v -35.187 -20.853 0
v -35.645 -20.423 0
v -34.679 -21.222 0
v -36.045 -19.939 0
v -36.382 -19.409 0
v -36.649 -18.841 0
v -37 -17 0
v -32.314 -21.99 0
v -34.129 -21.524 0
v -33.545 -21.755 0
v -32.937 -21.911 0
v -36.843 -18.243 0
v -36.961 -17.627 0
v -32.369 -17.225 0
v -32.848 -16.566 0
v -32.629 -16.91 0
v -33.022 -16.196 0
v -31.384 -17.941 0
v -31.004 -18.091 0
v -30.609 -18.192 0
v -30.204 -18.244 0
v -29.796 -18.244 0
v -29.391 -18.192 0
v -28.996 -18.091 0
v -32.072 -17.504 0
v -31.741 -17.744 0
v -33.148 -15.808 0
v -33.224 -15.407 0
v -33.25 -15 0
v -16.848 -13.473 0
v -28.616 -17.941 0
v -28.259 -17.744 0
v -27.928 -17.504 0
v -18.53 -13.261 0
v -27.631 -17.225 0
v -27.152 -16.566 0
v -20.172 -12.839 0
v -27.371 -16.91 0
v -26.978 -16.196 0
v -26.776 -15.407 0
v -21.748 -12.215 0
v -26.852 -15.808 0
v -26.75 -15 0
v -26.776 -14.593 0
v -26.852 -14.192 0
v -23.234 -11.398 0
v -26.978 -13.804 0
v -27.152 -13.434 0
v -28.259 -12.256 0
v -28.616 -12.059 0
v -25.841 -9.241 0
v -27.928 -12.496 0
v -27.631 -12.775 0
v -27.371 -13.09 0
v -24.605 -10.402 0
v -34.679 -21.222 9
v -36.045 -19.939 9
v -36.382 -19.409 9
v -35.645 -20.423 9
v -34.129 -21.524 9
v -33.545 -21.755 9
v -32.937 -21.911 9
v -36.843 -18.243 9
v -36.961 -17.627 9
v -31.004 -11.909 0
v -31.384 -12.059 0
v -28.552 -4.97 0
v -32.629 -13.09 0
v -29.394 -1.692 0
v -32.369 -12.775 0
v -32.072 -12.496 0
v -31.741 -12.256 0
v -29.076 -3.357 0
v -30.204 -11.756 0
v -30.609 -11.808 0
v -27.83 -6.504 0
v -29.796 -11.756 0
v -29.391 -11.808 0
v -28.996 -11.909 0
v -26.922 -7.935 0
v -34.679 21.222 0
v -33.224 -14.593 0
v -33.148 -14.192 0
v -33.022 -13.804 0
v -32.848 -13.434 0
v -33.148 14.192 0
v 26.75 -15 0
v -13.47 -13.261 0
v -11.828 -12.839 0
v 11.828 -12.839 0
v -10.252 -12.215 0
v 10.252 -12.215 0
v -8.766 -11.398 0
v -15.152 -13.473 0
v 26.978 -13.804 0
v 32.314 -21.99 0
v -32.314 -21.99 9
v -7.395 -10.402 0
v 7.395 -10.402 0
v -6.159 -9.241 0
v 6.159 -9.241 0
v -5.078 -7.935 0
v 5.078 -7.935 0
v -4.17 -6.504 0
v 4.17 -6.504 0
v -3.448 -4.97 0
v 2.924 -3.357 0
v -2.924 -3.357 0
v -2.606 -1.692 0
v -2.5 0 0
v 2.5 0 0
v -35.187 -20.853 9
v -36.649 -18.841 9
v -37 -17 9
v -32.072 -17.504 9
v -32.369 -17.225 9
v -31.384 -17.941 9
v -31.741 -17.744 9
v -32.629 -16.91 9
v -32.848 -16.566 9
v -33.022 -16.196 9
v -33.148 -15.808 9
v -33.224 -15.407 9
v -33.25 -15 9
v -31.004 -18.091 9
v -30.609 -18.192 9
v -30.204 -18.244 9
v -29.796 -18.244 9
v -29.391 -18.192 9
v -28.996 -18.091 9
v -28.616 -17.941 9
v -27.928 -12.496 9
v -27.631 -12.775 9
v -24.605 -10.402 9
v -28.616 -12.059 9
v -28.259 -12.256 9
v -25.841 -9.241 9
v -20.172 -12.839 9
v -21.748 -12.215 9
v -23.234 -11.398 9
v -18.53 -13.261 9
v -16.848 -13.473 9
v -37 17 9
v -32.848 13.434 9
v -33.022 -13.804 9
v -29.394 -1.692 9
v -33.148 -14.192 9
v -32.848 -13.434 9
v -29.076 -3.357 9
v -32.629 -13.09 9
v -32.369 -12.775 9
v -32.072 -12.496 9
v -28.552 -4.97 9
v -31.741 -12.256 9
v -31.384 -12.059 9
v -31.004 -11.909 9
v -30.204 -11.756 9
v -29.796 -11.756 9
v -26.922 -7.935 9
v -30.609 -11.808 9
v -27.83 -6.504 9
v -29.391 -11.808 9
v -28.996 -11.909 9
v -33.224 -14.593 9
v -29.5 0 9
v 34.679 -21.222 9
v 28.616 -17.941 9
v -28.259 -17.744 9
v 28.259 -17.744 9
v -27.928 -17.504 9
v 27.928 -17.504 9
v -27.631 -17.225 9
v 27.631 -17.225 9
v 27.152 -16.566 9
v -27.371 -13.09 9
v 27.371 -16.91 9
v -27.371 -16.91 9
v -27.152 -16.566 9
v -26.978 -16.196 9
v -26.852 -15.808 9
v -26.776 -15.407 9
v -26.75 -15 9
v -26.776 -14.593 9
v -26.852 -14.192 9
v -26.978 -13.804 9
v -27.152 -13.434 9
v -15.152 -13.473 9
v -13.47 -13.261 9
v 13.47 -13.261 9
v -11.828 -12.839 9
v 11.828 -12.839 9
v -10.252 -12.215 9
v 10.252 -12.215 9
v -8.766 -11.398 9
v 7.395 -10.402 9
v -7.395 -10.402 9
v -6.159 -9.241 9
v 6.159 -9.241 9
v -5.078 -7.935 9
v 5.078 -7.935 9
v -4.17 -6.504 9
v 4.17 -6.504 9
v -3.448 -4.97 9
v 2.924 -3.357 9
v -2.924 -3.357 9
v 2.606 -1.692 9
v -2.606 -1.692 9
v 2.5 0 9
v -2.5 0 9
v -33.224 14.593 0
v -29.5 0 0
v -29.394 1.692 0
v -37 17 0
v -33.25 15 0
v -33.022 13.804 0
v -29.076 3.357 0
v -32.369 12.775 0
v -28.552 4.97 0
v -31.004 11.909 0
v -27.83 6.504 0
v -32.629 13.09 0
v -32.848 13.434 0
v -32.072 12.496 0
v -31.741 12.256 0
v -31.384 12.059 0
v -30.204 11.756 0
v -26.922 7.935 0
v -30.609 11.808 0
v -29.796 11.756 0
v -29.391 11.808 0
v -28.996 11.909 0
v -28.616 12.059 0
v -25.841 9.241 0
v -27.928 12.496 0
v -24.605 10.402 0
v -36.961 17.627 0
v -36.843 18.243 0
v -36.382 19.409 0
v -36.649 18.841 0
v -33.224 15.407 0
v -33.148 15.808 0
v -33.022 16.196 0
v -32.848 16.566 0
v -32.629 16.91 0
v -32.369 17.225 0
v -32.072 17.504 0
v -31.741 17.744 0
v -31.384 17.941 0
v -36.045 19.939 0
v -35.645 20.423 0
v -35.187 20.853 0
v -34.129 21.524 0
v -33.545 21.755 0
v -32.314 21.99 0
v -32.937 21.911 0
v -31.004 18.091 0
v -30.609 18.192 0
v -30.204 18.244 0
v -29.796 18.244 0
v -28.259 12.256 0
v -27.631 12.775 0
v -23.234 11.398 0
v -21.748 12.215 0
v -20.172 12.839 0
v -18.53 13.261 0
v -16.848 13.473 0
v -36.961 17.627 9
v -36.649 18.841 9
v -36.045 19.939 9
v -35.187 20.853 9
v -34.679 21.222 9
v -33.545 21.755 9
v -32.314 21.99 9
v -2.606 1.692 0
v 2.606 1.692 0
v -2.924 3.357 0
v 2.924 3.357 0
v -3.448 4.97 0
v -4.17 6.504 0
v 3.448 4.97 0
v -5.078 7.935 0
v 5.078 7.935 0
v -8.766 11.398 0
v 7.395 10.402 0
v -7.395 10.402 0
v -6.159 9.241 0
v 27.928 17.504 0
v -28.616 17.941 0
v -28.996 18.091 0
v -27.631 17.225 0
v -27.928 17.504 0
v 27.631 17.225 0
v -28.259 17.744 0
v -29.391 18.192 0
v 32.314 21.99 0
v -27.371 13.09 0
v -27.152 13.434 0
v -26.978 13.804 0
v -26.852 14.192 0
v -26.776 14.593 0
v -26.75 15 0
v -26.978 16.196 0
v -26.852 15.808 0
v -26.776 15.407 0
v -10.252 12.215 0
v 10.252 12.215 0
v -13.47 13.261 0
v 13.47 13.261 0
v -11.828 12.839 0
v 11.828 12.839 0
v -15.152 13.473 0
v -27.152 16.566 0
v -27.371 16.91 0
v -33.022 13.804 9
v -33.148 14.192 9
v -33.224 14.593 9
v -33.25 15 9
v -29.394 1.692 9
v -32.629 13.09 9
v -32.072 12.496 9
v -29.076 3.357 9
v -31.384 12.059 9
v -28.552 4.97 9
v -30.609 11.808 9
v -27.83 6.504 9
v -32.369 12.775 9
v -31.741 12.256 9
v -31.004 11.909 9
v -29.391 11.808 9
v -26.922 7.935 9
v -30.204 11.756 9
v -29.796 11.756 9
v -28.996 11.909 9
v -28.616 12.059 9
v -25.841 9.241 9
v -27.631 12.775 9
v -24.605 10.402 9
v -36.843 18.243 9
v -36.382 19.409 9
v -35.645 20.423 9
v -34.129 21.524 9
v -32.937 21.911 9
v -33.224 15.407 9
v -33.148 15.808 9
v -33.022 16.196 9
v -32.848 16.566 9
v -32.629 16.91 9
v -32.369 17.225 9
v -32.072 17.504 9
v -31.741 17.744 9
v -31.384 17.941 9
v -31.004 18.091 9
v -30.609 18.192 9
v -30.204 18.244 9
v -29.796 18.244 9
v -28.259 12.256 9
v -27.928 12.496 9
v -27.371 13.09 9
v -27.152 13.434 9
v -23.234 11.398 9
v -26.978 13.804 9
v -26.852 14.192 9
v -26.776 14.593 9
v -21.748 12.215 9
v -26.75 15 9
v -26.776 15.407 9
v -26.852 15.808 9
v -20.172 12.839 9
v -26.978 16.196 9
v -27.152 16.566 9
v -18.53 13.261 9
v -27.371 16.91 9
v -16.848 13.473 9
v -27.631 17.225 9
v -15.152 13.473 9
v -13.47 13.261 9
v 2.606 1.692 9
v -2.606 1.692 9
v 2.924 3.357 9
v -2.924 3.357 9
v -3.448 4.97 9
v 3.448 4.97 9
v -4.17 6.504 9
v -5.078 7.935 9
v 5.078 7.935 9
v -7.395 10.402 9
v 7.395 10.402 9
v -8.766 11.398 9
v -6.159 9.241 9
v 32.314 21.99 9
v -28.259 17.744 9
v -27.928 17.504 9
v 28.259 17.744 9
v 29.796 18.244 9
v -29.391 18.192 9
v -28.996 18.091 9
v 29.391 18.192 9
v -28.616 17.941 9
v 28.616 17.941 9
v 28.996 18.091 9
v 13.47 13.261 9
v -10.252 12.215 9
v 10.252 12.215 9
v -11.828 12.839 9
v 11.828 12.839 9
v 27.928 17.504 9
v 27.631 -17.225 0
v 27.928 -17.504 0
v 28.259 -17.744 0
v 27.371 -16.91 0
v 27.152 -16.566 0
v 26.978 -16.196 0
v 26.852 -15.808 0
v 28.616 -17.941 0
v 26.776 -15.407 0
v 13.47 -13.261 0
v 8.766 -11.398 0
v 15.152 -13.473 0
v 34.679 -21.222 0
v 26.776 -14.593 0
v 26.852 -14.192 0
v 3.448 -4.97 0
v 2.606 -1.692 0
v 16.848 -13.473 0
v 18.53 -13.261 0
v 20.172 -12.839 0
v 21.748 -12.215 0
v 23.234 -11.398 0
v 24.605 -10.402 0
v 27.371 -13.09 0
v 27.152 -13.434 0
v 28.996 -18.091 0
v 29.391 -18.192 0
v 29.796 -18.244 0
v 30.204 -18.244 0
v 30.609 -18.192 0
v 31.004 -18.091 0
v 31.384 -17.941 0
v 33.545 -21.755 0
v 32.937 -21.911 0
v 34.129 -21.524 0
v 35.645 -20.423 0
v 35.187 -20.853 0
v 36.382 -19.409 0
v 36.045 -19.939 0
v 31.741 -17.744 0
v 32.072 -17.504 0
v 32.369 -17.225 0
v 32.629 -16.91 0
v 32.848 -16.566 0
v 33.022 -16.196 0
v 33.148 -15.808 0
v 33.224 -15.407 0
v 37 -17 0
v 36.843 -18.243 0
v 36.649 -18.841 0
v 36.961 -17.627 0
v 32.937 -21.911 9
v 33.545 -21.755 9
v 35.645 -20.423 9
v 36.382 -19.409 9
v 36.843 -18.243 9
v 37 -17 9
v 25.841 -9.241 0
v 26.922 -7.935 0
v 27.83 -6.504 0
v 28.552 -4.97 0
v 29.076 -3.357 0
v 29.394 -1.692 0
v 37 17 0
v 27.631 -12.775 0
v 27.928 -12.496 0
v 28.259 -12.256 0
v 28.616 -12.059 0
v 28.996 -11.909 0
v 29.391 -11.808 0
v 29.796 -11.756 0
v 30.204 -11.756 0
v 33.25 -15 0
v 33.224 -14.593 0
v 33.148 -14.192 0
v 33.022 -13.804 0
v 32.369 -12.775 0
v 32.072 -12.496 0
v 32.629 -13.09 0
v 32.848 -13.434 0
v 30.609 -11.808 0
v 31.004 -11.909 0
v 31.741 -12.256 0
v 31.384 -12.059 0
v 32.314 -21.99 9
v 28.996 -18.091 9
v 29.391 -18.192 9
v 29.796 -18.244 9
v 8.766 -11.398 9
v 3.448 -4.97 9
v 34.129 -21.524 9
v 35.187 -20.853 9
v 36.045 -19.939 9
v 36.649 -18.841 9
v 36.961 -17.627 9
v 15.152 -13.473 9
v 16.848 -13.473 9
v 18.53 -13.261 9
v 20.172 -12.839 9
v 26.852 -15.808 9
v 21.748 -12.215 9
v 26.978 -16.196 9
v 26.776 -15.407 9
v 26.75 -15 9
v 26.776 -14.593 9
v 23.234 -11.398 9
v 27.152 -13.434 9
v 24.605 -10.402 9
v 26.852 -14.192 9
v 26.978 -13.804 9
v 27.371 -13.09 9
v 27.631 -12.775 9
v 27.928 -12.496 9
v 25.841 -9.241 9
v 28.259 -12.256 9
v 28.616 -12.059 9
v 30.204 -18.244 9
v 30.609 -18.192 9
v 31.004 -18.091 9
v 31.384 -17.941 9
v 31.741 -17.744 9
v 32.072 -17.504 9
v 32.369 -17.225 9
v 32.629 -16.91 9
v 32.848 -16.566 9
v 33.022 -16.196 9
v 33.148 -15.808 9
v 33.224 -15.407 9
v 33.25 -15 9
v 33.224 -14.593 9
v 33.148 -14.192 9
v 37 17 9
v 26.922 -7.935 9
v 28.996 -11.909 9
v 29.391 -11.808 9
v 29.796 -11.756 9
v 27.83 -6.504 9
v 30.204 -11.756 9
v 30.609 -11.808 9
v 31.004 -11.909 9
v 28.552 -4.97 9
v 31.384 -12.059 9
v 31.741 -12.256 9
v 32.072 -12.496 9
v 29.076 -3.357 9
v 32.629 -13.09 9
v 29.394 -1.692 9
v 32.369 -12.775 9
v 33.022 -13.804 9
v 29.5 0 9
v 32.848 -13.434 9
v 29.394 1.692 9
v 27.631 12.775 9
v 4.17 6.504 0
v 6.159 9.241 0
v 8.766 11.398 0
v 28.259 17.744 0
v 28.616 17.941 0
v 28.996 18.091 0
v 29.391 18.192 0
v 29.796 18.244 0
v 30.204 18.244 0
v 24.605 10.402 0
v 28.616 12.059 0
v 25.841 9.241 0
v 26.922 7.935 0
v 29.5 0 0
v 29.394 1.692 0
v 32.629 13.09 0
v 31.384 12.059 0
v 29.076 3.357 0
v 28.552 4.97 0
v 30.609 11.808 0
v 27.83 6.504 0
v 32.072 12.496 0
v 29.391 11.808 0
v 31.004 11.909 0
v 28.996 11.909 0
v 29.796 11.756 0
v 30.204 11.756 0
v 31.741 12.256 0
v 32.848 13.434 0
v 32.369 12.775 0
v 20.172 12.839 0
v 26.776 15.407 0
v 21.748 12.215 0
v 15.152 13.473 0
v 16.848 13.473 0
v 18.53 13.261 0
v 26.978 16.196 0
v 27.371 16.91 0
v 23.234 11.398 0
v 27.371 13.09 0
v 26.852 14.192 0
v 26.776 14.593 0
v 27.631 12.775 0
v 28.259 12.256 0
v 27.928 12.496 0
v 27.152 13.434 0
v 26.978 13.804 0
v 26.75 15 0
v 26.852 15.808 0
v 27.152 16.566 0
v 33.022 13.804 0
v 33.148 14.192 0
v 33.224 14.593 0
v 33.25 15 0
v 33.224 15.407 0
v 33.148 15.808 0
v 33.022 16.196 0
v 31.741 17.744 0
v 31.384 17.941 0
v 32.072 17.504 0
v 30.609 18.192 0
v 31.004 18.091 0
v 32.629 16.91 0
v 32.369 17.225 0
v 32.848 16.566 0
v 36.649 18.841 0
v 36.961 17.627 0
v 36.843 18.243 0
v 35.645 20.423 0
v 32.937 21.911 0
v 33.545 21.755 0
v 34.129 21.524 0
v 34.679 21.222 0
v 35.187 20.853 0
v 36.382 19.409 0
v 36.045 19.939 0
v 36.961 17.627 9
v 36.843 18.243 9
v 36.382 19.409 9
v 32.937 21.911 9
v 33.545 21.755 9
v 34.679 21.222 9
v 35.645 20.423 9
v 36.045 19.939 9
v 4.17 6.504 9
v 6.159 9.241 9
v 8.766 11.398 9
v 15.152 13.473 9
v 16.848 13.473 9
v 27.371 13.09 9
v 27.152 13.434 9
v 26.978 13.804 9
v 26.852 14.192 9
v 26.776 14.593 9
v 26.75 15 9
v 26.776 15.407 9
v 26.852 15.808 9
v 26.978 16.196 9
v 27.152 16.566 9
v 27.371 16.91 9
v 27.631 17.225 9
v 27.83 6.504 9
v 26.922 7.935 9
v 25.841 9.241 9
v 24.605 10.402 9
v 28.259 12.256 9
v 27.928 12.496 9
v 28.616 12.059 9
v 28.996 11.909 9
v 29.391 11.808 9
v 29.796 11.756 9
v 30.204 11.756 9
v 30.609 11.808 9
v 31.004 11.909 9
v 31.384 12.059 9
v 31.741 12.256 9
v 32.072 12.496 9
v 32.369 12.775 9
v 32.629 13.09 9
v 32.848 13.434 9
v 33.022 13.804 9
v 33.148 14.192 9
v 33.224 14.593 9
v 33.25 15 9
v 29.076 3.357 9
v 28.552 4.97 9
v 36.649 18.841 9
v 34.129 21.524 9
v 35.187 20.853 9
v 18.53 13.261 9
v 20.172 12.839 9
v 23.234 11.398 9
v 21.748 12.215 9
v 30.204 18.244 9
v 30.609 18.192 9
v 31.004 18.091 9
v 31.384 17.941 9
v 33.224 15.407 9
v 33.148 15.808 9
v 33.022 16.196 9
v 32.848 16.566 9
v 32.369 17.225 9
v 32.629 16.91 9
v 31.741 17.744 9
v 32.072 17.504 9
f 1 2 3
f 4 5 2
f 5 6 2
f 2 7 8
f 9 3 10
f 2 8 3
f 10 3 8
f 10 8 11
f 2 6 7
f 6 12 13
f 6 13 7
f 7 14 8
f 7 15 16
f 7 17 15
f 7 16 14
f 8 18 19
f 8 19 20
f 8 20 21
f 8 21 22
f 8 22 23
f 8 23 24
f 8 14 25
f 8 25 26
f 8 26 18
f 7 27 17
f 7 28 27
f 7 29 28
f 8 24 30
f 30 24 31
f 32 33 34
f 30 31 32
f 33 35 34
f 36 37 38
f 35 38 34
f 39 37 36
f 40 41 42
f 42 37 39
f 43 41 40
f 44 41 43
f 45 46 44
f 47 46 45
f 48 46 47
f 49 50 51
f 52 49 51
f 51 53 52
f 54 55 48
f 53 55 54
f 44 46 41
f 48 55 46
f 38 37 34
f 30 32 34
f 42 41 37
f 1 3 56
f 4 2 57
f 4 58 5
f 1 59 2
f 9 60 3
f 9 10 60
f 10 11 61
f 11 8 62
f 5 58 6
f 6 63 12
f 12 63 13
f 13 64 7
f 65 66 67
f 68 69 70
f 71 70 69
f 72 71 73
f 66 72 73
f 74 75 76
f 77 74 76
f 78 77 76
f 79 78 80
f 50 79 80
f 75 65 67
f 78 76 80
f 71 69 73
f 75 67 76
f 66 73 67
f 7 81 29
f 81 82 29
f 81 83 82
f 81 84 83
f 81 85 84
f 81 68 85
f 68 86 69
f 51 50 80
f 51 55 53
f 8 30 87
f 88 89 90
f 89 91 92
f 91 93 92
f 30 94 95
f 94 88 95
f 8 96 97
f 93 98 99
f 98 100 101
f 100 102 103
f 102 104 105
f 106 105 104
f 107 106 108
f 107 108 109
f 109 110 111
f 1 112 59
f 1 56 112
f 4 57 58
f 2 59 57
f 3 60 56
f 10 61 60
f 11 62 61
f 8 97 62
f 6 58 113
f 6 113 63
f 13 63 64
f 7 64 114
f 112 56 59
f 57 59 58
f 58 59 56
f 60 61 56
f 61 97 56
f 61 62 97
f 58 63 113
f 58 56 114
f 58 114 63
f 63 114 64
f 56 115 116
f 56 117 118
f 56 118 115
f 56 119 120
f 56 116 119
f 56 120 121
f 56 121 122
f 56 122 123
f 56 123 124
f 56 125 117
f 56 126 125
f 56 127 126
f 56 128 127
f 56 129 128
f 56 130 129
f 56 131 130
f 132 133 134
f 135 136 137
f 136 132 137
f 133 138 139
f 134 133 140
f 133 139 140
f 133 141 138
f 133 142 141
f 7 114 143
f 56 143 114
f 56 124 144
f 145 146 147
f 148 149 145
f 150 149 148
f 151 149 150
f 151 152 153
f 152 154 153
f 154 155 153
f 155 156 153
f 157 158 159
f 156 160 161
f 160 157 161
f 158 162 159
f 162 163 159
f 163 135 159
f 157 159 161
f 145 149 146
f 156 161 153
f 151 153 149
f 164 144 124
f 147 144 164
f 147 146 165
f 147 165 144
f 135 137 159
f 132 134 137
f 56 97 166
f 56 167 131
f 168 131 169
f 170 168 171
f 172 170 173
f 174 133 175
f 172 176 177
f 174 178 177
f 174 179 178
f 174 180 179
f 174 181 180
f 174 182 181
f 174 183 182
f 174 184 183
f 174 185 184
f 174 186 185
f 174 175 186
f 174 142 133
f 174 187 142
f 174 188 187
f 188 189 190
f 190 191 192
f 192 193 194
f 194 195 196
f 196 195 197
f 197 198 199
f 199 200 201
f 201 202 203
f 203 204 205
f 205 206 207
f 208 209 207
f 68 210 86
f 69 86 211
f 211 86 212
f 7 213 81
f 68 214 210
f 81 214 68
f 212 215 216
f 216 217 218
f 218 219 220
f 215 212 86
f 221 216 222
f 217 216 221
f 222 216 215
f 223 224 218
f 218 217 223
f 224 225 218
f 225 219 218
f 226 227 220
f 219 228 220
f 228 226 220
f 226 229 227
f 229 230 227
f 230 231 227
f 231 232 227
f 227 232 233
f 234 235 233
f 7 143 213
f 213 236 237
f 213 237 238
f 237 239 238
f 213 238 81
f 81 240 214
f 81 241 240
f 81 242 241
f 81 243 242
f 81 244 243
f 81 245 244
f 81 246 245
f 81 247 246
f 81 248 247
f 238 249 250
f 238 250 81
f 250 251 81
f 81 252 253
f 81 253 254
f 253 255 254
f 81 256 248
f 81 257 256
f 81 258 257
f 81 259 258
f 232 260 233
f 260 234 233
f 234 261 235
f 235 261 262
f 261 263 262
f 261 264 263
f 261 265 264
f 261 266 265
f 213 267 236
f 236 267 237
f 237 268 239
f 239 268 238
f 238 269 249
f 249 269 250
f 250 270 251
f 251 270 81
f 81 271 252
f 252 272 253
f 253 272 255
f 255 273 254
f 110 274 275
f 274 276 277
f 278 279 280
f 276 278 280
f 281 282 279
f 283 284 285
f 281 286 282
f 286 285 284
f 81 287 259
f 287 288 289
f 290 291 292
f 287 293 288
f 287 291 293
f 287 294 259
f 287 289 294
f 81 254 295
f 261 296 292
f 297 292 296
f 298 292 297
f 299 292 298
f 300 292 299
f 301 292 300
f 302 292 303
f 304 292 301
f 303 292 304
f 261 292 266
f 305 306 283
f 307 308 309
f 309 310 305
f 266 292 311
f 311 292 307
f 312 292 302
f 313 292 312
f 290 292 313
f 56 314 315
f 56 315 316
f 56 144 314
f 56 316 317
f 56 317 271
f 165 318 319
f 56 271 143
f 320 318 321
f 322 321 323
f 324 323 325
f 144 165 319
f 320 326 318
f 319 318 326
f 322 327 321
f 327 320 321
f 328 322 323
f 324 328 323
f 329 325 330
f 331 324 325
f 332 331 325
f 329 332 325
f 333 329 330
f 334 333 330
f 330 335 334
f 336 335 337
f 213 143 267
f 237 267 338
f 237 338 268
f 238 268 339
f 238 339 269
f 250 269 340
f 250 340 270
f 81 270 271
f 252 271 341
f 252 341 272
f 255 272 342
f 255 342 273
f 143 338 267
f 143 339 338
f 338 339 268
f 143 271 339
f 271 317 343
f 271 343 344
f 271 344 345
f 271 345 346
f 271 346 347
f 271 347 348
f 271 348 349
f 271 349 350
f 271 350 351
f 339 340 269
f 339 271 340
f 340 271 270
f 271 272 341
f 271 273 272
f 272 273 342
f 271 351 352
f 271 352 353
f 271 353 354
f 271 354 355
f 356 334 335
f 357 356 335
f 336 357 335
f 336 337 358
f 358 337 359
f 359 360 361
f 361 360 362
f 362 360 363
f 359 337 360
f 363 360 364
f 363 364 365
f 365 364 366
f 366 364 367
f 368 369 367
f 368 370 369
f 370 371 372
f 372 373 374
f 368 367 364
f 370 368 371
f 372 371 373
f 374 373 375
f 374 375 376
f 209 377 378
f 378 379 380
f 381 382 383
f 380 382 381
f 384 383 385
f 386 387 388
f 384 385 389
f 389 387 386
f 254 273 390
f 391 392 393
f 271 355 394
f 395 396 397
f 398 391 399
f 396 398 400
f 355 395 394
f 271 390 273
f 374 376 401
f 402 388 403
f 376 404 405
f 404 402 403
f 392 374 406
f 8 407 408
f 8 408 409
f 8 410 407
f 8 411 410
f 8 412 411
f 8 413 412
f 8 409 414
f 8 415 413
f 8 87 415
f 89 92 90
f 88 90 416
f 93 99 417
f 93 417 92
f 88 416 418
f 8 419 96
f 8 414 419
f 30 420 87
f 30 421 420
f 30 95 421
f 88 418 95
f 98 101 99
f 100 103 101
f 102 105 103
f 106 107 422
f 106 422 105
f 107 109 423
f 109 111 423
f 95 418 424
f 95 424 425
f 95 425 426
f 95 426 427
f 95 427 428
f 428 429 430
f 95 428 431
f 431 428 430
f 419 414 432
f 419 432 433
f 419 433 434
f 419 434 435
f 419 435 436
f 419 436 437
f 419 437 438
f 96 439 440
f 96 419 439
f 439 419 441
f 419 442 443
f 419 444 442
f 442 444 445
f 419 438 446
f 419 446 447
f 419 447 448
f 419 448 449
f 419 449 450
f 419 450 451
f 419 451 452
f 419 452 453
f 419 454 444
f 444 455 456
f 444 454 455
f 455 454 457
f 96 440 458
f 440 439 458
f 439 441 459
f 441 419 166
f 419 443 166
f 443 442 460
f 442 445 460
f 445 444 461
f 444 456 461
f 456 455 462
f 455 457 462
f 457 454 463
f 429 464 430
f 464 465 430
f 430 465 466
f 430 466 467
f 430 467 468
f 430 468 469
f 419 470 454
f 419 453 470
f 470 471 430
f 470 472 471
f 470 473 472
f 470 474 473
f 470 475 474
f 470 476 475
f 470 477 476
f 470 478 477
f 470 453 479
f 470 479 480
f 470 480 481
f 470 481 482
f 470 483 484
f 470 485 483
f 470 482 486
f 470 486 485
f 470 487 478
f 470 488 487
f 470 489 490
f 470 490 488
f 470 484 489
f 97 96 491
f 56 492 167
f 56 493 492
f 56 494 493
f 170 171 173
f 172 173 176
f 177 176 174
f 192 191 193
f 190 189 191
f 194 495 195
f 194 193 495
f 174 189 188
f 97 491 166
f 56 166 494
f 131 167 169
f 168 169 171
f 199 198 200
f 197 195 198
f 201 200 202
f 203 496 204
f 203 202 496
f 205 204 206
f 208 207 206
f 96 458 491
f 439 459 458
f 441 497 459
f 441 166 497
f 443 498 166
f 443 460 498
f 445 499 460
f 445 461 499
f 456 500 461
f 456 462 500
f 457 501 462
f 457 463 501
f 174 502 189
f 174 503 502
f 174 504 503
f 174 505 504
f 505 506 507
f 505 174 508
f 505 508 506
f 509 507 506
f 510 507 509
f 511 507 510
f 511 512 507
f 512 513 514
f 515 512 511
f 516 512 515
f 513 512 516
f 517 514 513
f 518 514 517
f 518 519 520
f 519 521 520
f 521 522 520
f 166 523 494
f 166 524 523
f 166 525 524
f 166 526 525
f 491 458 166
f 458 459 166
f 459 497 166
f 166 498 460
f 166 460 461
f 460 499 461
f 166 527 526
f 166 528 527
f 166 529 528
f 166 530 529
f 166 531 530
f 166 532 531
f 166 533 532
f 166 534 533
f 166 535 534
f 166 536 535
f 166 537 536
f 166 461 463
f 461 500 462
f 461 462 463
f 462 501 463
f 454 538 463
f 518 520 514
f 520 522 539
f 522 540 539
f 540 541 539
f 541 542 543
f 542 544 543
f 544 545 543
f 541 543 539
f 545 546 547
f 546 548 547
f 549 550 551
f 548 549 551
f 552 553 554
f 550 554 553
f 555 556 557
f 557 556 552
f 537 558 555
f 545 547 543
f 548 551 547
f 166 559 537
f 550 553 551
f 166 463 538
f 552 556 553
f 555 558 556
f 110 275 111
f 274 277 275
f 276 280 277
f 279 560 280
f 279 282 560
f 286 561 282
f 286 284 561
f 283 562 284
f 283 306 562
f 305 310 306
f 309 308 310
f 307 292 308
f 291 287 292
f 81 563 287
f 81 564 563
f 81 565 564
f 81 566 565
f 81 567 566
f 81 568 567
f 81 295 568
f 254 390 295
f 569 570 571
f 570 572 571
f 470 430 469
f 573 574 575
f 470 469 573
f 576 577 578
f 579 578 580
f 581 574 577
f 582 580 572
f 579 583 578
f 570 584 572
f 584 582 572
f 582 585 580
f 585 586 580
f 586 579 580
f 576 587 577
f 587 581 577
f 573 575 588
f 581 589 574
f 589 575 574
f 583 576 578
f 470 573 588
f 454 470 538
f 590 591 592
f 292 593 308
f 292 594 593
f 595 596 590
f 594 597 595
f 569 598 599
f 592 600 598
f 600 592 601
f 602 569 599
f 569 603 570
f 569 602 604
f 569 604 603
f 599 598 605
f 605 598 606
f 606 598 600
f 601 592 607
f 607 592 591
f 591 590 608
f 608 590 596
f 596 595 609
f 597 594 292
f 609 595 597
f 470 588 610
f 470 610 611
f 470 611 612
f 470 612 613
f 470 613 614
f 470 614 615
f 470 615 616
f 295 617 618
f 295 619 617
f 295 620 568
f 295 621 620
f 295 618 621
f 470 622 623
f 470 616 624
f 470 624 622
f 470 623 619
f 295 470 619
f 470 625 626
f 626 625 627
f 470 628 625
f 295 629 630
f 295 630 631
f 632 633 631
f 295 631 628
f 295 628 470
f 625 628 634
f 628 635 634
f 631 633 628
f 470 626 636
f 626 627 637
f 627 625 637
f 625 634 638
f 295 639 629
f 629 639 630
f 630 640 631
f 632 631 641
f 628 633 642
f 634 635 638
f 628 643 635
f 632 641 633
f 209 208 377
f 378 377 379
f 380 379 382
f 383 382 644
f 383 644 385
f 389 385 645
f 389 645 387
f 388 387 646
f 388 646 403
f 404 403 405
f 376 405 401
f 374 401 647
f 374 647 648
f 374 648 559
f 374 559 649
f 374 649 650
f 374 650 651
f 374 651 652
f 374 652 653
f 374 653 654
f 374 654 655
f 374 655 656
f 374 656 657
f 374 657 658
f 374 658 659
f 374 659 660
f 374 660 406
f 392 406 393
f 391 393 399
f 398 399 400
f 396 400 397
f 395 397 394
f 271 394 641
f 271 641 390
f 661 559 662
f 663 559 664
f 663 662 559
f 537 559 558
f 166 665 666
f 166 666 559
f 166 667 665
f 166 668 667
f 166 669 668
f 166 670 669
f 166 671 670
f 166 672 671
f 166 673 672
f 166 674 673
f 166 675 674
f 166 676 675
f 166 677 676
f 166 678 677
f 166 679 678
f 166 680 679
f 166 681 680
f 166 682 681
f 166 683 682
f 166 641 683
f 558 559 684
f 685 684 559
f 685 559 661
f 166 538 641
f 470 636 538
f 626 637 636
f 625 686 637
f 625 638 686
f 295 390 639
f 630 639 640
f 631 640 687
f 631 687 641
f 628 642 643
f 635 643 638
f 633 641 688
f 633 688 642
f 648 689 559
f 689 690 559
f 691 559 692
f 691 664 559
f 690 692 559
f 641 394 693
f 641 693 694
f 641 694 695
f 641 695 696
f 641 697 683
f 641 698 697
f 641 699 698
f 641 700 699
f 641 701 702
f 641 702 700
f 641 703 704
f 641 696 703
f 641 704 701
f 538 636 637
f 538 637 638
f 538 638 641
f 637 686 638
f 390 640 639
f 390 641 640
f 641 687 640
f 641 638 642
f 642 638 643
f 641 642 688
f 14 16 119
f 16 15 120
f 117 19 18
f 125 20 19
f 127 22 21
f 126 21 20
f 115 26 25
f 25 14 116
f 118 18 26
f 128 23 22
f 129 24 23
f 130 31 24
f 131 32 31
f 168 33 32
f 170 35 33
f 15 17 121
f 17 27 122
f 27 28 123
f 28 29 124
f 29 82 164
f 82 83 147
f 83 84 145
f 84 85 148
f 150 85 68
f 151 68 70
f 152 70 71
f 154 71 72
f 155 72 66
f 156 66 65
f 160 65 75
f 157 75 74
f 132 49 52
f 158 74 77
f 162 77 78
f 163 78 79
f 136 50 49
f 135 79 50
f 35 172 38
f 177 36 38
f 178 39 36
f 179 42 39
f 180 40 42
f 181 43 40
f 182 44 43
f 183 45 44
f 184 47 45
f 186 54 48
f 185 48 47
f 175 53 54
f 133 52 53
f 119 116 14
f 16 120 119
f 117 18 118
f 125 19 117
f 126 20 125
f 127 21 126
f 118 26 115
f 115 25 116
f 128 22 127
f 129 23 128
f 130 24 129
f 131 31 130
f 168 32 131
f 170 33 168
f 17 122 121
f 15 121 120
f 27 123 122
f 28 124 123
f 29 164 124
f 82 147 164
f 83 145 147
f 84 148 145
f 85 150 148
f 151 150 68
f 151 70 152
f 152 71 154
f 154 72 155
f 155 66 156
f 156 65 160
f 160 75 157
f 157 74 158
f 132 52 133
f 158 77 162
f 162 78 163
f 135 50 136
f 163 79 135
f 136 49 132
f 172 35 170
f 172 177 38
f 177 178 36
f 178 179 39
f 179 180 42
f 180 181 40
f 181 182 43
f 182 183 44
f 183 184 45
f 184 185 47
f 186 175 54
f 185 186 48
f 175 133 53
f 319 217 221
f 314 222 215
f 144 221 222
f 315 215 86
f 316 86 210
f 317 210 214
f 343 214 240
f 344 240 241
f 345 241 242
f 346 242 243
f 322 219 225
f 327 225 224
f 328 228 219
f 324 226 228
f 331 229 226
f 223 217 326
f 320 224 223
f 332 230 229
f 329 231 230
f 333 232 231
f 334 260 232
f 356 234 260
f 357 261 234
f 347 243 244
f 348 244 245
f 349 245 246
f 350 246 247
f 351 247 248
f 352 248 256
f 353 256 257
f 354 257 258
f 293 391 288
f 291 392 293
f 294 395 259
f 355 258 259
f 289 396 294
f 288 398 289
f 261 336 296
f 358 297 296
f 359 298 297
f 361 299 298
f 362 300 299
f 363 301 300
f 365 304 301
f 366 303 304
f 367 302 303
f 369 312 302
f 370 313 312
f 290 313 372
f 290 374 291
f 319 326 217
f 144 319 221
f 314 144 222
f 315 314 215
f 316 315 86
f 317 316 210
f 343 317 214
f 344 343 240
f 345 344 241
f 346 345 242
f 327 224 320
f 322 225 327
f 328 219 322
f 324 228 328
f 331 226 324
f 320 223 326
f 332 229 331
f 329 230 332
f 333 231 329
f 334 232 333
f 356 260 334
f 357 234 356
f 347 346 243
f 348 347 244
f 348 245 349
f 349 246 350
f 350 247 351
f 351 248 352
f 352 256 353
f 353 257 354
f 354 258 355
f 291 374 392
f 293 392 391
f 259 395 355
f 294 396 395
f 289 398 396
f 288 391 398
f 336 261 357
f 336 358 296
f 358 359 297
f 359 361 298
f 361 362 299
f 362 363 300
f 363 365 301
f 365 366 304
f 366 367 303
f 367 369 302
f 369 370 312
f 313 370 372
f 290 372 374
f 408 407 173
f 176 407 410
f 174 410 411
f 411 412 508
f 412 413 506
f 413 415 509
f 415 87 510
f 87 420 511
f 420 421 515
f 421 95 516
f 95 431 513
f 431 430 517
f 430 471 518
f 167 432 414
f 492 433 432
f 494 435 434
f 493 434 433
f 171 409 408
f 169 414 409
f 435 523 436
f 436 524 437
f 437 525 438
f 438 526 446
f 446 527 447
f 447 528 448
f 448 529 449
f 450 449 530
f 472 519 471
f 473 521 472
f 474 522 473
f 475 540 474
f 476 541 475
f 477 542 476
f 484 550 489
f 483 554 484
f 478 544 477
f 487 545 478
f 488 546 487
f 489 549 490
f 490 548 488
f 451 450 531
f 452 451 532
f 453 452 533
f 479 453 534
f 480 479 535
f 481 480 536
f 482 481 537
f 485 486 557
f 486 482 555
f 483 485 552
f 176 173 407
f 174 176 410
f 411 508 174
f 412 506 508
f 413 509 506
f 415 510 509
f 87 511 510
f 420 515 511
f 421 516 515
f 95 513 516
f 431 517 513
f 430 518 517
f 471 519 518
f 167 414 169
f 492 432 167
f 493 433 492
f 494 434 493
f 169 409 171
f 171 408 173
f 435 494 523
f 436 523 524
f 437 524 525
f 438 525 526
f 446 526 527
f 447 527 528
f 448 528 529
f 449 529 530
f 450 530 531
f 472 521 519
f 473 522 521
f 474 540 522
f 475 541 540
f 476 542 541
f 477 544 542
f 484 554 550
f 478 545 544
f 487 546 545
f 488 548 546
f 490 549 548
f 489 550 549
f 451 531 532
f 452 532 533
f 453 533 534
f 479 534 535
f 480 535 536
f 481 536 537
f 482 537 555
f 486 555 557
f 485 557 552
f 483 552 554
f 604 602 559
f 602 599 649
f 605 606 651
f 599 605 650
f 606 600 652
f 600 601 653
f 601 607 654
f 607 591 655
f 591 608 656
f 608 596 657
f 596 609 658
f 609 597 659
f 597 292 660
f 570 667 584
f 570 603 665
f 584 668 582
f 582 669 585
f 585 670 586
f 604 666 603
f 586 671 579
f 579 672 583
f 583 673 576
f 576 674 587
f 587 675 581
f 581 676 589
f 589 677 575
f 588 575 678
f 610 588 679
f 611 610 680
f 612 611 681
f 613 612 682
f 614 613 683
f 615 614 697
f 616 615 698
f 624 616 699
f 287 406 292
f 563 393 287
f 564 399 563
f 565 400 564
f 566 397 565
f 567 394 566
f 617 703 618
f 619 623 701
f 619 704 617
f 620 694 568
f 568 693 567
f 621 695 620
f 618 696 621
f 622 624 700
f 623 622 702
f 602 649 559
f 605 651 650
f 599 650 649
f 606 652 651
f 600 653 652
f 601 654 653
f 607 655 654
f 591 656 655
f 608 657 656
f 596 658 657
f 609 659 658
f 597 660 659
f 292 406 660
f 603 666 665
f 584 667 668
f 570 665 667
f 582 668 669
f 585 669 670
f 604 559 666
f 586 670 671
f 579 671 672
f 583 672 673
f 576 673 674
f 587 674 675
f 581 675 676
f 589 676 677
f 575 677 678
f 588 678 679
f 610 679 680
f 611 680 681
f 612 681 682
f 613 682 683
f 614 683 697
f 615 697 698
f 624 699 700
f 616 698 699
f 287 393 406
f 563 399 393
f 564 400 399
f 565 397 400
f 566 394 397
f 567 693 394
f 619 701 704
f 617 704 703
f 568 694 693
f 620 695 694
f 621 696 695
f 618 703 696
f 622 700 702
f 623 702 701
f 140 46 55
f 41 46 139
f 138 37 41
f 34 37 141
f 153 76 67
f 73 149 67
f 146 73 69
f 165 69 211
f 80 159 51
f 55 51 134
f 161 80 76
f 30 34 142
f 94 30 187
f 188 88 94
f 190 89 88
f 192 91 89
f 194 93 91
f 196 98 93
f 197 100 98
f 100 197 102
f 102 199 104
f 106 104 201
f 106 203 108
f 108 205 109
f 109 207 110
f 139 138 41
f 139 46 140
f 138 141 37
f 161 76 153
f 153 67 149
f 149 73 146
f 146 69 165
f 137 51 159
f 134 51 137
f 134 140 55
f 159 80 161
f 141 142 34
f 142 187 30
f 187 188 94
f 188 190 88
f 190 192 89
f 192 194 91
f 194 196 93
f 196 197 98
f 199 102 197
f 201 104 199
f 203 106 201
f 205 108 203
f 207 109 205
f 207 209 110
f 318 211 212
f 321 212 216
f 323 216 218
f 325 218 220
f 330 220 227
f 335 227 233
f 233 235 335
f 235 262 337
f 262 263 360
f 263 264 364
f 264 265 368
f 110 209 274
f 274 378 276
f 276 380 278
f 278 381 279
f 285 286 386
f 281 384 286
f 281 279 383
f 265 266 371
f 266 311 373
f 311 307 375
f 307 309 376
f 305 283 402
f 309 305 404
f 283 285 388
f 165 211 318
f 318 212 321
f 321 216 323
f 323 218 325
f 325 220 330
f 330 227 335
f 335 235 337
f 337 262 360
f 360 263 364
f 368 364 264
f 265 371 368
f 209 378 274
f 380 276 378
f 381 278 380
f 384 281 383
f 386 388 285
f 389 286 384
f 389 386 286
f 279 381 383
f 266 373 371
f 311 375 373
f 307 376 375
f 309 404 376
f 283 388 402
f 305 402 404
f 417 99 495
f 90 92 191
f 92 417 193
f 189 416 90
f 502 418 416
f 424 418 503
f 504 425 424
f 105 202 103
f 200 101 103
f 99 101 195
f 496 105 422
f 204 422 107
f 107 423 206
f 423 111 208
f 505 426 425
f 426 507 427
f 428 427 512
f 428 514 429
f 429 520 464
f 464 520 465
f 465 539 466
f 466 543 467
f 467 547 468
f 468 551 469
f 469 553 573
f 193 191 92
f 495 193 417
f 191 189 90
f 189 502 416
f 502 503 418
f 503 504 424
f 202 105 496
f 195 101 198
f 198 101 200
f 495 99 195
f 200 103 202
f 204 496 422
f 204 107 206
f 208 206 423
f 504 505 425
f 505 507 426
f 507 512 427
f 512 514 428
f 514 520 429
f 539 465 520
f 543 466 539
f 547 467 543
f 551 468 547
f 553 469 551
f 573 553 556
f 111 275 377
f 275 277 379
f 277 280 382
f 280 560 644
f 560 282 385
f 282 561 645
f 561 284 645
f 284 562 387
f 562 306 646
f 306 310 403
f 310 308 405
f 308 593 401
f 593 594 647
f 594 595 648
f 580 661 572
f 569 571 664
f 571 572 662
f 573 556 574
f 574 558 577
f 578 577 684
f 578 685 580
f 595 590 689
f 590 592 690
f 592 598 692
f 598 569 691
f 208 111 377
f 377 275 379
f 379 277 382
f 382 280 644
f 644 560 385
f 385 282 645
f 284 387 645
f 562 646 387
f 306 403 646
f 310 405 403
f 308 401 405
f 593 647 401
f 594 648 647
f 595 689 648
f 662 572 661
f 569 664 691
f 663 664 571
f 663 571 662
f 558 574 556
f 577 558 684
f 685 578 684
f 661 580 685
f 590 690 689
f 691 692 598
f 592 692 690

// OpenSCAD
$fn = 50;

difference() {
	union() {
		hull() {
			translate(v = [-32.0, 17.0, 0]) {
				cylinder(h = 9, r = 5);
			}
			translate(v = [32.0, 17.0, 0]) {
				cylinder(h = 9, r = 5);
			}
			translate(v = [-32.0, -17.0, 0]) {
				cylinder(h = 9, r = 5);
			}
			translate(v = [32.0, -17.0, 0]) {
				cylinder(h = 9, r = 5);
			}
		}
	}
	union() {
		translate(v = [-30.0, -15.0, -100.0]) {
			cylinder(h = 200, r = 3.25);
		}
		translate(v = [-30.0, 15.0, -100.0]) {
			cylinder(h = 200, r = 3.25);
		}
		translate(v = [30.0, -15.0, -100.0]) {
			cylinder(h = 200, r = 3.25);
		}
		translate(v = [30.0, 15.0, -100.0]) {
			cylinder(h = 200, r = 3.25);
		}
		translate(v = [-30.0, -15.0, -100.0]) {
			cylinder(h = 200, r = 1.8);
		}
		translate(v = [-30.0, 15.0, -100.0]) {
			cylinder(h = 200, r = 1.8);
		}
		translate(v = [30.0, -15.0, -100.0]) {
			cylinder(h = 200, r = 1.8);
		}
		translate(v = [30.0, 15.0, -100.0]) {
			cylinder(h = 200, r = 1.8);
		}
		translate(v = [-16.0, 0, 0.0]) {
			cylinder(h = 9, r = 13.5);
		}
		translate(v = [16.0, 0, 0.0]) {
			cylinder(h = 9, r = 13.5);
		}
	}
}
